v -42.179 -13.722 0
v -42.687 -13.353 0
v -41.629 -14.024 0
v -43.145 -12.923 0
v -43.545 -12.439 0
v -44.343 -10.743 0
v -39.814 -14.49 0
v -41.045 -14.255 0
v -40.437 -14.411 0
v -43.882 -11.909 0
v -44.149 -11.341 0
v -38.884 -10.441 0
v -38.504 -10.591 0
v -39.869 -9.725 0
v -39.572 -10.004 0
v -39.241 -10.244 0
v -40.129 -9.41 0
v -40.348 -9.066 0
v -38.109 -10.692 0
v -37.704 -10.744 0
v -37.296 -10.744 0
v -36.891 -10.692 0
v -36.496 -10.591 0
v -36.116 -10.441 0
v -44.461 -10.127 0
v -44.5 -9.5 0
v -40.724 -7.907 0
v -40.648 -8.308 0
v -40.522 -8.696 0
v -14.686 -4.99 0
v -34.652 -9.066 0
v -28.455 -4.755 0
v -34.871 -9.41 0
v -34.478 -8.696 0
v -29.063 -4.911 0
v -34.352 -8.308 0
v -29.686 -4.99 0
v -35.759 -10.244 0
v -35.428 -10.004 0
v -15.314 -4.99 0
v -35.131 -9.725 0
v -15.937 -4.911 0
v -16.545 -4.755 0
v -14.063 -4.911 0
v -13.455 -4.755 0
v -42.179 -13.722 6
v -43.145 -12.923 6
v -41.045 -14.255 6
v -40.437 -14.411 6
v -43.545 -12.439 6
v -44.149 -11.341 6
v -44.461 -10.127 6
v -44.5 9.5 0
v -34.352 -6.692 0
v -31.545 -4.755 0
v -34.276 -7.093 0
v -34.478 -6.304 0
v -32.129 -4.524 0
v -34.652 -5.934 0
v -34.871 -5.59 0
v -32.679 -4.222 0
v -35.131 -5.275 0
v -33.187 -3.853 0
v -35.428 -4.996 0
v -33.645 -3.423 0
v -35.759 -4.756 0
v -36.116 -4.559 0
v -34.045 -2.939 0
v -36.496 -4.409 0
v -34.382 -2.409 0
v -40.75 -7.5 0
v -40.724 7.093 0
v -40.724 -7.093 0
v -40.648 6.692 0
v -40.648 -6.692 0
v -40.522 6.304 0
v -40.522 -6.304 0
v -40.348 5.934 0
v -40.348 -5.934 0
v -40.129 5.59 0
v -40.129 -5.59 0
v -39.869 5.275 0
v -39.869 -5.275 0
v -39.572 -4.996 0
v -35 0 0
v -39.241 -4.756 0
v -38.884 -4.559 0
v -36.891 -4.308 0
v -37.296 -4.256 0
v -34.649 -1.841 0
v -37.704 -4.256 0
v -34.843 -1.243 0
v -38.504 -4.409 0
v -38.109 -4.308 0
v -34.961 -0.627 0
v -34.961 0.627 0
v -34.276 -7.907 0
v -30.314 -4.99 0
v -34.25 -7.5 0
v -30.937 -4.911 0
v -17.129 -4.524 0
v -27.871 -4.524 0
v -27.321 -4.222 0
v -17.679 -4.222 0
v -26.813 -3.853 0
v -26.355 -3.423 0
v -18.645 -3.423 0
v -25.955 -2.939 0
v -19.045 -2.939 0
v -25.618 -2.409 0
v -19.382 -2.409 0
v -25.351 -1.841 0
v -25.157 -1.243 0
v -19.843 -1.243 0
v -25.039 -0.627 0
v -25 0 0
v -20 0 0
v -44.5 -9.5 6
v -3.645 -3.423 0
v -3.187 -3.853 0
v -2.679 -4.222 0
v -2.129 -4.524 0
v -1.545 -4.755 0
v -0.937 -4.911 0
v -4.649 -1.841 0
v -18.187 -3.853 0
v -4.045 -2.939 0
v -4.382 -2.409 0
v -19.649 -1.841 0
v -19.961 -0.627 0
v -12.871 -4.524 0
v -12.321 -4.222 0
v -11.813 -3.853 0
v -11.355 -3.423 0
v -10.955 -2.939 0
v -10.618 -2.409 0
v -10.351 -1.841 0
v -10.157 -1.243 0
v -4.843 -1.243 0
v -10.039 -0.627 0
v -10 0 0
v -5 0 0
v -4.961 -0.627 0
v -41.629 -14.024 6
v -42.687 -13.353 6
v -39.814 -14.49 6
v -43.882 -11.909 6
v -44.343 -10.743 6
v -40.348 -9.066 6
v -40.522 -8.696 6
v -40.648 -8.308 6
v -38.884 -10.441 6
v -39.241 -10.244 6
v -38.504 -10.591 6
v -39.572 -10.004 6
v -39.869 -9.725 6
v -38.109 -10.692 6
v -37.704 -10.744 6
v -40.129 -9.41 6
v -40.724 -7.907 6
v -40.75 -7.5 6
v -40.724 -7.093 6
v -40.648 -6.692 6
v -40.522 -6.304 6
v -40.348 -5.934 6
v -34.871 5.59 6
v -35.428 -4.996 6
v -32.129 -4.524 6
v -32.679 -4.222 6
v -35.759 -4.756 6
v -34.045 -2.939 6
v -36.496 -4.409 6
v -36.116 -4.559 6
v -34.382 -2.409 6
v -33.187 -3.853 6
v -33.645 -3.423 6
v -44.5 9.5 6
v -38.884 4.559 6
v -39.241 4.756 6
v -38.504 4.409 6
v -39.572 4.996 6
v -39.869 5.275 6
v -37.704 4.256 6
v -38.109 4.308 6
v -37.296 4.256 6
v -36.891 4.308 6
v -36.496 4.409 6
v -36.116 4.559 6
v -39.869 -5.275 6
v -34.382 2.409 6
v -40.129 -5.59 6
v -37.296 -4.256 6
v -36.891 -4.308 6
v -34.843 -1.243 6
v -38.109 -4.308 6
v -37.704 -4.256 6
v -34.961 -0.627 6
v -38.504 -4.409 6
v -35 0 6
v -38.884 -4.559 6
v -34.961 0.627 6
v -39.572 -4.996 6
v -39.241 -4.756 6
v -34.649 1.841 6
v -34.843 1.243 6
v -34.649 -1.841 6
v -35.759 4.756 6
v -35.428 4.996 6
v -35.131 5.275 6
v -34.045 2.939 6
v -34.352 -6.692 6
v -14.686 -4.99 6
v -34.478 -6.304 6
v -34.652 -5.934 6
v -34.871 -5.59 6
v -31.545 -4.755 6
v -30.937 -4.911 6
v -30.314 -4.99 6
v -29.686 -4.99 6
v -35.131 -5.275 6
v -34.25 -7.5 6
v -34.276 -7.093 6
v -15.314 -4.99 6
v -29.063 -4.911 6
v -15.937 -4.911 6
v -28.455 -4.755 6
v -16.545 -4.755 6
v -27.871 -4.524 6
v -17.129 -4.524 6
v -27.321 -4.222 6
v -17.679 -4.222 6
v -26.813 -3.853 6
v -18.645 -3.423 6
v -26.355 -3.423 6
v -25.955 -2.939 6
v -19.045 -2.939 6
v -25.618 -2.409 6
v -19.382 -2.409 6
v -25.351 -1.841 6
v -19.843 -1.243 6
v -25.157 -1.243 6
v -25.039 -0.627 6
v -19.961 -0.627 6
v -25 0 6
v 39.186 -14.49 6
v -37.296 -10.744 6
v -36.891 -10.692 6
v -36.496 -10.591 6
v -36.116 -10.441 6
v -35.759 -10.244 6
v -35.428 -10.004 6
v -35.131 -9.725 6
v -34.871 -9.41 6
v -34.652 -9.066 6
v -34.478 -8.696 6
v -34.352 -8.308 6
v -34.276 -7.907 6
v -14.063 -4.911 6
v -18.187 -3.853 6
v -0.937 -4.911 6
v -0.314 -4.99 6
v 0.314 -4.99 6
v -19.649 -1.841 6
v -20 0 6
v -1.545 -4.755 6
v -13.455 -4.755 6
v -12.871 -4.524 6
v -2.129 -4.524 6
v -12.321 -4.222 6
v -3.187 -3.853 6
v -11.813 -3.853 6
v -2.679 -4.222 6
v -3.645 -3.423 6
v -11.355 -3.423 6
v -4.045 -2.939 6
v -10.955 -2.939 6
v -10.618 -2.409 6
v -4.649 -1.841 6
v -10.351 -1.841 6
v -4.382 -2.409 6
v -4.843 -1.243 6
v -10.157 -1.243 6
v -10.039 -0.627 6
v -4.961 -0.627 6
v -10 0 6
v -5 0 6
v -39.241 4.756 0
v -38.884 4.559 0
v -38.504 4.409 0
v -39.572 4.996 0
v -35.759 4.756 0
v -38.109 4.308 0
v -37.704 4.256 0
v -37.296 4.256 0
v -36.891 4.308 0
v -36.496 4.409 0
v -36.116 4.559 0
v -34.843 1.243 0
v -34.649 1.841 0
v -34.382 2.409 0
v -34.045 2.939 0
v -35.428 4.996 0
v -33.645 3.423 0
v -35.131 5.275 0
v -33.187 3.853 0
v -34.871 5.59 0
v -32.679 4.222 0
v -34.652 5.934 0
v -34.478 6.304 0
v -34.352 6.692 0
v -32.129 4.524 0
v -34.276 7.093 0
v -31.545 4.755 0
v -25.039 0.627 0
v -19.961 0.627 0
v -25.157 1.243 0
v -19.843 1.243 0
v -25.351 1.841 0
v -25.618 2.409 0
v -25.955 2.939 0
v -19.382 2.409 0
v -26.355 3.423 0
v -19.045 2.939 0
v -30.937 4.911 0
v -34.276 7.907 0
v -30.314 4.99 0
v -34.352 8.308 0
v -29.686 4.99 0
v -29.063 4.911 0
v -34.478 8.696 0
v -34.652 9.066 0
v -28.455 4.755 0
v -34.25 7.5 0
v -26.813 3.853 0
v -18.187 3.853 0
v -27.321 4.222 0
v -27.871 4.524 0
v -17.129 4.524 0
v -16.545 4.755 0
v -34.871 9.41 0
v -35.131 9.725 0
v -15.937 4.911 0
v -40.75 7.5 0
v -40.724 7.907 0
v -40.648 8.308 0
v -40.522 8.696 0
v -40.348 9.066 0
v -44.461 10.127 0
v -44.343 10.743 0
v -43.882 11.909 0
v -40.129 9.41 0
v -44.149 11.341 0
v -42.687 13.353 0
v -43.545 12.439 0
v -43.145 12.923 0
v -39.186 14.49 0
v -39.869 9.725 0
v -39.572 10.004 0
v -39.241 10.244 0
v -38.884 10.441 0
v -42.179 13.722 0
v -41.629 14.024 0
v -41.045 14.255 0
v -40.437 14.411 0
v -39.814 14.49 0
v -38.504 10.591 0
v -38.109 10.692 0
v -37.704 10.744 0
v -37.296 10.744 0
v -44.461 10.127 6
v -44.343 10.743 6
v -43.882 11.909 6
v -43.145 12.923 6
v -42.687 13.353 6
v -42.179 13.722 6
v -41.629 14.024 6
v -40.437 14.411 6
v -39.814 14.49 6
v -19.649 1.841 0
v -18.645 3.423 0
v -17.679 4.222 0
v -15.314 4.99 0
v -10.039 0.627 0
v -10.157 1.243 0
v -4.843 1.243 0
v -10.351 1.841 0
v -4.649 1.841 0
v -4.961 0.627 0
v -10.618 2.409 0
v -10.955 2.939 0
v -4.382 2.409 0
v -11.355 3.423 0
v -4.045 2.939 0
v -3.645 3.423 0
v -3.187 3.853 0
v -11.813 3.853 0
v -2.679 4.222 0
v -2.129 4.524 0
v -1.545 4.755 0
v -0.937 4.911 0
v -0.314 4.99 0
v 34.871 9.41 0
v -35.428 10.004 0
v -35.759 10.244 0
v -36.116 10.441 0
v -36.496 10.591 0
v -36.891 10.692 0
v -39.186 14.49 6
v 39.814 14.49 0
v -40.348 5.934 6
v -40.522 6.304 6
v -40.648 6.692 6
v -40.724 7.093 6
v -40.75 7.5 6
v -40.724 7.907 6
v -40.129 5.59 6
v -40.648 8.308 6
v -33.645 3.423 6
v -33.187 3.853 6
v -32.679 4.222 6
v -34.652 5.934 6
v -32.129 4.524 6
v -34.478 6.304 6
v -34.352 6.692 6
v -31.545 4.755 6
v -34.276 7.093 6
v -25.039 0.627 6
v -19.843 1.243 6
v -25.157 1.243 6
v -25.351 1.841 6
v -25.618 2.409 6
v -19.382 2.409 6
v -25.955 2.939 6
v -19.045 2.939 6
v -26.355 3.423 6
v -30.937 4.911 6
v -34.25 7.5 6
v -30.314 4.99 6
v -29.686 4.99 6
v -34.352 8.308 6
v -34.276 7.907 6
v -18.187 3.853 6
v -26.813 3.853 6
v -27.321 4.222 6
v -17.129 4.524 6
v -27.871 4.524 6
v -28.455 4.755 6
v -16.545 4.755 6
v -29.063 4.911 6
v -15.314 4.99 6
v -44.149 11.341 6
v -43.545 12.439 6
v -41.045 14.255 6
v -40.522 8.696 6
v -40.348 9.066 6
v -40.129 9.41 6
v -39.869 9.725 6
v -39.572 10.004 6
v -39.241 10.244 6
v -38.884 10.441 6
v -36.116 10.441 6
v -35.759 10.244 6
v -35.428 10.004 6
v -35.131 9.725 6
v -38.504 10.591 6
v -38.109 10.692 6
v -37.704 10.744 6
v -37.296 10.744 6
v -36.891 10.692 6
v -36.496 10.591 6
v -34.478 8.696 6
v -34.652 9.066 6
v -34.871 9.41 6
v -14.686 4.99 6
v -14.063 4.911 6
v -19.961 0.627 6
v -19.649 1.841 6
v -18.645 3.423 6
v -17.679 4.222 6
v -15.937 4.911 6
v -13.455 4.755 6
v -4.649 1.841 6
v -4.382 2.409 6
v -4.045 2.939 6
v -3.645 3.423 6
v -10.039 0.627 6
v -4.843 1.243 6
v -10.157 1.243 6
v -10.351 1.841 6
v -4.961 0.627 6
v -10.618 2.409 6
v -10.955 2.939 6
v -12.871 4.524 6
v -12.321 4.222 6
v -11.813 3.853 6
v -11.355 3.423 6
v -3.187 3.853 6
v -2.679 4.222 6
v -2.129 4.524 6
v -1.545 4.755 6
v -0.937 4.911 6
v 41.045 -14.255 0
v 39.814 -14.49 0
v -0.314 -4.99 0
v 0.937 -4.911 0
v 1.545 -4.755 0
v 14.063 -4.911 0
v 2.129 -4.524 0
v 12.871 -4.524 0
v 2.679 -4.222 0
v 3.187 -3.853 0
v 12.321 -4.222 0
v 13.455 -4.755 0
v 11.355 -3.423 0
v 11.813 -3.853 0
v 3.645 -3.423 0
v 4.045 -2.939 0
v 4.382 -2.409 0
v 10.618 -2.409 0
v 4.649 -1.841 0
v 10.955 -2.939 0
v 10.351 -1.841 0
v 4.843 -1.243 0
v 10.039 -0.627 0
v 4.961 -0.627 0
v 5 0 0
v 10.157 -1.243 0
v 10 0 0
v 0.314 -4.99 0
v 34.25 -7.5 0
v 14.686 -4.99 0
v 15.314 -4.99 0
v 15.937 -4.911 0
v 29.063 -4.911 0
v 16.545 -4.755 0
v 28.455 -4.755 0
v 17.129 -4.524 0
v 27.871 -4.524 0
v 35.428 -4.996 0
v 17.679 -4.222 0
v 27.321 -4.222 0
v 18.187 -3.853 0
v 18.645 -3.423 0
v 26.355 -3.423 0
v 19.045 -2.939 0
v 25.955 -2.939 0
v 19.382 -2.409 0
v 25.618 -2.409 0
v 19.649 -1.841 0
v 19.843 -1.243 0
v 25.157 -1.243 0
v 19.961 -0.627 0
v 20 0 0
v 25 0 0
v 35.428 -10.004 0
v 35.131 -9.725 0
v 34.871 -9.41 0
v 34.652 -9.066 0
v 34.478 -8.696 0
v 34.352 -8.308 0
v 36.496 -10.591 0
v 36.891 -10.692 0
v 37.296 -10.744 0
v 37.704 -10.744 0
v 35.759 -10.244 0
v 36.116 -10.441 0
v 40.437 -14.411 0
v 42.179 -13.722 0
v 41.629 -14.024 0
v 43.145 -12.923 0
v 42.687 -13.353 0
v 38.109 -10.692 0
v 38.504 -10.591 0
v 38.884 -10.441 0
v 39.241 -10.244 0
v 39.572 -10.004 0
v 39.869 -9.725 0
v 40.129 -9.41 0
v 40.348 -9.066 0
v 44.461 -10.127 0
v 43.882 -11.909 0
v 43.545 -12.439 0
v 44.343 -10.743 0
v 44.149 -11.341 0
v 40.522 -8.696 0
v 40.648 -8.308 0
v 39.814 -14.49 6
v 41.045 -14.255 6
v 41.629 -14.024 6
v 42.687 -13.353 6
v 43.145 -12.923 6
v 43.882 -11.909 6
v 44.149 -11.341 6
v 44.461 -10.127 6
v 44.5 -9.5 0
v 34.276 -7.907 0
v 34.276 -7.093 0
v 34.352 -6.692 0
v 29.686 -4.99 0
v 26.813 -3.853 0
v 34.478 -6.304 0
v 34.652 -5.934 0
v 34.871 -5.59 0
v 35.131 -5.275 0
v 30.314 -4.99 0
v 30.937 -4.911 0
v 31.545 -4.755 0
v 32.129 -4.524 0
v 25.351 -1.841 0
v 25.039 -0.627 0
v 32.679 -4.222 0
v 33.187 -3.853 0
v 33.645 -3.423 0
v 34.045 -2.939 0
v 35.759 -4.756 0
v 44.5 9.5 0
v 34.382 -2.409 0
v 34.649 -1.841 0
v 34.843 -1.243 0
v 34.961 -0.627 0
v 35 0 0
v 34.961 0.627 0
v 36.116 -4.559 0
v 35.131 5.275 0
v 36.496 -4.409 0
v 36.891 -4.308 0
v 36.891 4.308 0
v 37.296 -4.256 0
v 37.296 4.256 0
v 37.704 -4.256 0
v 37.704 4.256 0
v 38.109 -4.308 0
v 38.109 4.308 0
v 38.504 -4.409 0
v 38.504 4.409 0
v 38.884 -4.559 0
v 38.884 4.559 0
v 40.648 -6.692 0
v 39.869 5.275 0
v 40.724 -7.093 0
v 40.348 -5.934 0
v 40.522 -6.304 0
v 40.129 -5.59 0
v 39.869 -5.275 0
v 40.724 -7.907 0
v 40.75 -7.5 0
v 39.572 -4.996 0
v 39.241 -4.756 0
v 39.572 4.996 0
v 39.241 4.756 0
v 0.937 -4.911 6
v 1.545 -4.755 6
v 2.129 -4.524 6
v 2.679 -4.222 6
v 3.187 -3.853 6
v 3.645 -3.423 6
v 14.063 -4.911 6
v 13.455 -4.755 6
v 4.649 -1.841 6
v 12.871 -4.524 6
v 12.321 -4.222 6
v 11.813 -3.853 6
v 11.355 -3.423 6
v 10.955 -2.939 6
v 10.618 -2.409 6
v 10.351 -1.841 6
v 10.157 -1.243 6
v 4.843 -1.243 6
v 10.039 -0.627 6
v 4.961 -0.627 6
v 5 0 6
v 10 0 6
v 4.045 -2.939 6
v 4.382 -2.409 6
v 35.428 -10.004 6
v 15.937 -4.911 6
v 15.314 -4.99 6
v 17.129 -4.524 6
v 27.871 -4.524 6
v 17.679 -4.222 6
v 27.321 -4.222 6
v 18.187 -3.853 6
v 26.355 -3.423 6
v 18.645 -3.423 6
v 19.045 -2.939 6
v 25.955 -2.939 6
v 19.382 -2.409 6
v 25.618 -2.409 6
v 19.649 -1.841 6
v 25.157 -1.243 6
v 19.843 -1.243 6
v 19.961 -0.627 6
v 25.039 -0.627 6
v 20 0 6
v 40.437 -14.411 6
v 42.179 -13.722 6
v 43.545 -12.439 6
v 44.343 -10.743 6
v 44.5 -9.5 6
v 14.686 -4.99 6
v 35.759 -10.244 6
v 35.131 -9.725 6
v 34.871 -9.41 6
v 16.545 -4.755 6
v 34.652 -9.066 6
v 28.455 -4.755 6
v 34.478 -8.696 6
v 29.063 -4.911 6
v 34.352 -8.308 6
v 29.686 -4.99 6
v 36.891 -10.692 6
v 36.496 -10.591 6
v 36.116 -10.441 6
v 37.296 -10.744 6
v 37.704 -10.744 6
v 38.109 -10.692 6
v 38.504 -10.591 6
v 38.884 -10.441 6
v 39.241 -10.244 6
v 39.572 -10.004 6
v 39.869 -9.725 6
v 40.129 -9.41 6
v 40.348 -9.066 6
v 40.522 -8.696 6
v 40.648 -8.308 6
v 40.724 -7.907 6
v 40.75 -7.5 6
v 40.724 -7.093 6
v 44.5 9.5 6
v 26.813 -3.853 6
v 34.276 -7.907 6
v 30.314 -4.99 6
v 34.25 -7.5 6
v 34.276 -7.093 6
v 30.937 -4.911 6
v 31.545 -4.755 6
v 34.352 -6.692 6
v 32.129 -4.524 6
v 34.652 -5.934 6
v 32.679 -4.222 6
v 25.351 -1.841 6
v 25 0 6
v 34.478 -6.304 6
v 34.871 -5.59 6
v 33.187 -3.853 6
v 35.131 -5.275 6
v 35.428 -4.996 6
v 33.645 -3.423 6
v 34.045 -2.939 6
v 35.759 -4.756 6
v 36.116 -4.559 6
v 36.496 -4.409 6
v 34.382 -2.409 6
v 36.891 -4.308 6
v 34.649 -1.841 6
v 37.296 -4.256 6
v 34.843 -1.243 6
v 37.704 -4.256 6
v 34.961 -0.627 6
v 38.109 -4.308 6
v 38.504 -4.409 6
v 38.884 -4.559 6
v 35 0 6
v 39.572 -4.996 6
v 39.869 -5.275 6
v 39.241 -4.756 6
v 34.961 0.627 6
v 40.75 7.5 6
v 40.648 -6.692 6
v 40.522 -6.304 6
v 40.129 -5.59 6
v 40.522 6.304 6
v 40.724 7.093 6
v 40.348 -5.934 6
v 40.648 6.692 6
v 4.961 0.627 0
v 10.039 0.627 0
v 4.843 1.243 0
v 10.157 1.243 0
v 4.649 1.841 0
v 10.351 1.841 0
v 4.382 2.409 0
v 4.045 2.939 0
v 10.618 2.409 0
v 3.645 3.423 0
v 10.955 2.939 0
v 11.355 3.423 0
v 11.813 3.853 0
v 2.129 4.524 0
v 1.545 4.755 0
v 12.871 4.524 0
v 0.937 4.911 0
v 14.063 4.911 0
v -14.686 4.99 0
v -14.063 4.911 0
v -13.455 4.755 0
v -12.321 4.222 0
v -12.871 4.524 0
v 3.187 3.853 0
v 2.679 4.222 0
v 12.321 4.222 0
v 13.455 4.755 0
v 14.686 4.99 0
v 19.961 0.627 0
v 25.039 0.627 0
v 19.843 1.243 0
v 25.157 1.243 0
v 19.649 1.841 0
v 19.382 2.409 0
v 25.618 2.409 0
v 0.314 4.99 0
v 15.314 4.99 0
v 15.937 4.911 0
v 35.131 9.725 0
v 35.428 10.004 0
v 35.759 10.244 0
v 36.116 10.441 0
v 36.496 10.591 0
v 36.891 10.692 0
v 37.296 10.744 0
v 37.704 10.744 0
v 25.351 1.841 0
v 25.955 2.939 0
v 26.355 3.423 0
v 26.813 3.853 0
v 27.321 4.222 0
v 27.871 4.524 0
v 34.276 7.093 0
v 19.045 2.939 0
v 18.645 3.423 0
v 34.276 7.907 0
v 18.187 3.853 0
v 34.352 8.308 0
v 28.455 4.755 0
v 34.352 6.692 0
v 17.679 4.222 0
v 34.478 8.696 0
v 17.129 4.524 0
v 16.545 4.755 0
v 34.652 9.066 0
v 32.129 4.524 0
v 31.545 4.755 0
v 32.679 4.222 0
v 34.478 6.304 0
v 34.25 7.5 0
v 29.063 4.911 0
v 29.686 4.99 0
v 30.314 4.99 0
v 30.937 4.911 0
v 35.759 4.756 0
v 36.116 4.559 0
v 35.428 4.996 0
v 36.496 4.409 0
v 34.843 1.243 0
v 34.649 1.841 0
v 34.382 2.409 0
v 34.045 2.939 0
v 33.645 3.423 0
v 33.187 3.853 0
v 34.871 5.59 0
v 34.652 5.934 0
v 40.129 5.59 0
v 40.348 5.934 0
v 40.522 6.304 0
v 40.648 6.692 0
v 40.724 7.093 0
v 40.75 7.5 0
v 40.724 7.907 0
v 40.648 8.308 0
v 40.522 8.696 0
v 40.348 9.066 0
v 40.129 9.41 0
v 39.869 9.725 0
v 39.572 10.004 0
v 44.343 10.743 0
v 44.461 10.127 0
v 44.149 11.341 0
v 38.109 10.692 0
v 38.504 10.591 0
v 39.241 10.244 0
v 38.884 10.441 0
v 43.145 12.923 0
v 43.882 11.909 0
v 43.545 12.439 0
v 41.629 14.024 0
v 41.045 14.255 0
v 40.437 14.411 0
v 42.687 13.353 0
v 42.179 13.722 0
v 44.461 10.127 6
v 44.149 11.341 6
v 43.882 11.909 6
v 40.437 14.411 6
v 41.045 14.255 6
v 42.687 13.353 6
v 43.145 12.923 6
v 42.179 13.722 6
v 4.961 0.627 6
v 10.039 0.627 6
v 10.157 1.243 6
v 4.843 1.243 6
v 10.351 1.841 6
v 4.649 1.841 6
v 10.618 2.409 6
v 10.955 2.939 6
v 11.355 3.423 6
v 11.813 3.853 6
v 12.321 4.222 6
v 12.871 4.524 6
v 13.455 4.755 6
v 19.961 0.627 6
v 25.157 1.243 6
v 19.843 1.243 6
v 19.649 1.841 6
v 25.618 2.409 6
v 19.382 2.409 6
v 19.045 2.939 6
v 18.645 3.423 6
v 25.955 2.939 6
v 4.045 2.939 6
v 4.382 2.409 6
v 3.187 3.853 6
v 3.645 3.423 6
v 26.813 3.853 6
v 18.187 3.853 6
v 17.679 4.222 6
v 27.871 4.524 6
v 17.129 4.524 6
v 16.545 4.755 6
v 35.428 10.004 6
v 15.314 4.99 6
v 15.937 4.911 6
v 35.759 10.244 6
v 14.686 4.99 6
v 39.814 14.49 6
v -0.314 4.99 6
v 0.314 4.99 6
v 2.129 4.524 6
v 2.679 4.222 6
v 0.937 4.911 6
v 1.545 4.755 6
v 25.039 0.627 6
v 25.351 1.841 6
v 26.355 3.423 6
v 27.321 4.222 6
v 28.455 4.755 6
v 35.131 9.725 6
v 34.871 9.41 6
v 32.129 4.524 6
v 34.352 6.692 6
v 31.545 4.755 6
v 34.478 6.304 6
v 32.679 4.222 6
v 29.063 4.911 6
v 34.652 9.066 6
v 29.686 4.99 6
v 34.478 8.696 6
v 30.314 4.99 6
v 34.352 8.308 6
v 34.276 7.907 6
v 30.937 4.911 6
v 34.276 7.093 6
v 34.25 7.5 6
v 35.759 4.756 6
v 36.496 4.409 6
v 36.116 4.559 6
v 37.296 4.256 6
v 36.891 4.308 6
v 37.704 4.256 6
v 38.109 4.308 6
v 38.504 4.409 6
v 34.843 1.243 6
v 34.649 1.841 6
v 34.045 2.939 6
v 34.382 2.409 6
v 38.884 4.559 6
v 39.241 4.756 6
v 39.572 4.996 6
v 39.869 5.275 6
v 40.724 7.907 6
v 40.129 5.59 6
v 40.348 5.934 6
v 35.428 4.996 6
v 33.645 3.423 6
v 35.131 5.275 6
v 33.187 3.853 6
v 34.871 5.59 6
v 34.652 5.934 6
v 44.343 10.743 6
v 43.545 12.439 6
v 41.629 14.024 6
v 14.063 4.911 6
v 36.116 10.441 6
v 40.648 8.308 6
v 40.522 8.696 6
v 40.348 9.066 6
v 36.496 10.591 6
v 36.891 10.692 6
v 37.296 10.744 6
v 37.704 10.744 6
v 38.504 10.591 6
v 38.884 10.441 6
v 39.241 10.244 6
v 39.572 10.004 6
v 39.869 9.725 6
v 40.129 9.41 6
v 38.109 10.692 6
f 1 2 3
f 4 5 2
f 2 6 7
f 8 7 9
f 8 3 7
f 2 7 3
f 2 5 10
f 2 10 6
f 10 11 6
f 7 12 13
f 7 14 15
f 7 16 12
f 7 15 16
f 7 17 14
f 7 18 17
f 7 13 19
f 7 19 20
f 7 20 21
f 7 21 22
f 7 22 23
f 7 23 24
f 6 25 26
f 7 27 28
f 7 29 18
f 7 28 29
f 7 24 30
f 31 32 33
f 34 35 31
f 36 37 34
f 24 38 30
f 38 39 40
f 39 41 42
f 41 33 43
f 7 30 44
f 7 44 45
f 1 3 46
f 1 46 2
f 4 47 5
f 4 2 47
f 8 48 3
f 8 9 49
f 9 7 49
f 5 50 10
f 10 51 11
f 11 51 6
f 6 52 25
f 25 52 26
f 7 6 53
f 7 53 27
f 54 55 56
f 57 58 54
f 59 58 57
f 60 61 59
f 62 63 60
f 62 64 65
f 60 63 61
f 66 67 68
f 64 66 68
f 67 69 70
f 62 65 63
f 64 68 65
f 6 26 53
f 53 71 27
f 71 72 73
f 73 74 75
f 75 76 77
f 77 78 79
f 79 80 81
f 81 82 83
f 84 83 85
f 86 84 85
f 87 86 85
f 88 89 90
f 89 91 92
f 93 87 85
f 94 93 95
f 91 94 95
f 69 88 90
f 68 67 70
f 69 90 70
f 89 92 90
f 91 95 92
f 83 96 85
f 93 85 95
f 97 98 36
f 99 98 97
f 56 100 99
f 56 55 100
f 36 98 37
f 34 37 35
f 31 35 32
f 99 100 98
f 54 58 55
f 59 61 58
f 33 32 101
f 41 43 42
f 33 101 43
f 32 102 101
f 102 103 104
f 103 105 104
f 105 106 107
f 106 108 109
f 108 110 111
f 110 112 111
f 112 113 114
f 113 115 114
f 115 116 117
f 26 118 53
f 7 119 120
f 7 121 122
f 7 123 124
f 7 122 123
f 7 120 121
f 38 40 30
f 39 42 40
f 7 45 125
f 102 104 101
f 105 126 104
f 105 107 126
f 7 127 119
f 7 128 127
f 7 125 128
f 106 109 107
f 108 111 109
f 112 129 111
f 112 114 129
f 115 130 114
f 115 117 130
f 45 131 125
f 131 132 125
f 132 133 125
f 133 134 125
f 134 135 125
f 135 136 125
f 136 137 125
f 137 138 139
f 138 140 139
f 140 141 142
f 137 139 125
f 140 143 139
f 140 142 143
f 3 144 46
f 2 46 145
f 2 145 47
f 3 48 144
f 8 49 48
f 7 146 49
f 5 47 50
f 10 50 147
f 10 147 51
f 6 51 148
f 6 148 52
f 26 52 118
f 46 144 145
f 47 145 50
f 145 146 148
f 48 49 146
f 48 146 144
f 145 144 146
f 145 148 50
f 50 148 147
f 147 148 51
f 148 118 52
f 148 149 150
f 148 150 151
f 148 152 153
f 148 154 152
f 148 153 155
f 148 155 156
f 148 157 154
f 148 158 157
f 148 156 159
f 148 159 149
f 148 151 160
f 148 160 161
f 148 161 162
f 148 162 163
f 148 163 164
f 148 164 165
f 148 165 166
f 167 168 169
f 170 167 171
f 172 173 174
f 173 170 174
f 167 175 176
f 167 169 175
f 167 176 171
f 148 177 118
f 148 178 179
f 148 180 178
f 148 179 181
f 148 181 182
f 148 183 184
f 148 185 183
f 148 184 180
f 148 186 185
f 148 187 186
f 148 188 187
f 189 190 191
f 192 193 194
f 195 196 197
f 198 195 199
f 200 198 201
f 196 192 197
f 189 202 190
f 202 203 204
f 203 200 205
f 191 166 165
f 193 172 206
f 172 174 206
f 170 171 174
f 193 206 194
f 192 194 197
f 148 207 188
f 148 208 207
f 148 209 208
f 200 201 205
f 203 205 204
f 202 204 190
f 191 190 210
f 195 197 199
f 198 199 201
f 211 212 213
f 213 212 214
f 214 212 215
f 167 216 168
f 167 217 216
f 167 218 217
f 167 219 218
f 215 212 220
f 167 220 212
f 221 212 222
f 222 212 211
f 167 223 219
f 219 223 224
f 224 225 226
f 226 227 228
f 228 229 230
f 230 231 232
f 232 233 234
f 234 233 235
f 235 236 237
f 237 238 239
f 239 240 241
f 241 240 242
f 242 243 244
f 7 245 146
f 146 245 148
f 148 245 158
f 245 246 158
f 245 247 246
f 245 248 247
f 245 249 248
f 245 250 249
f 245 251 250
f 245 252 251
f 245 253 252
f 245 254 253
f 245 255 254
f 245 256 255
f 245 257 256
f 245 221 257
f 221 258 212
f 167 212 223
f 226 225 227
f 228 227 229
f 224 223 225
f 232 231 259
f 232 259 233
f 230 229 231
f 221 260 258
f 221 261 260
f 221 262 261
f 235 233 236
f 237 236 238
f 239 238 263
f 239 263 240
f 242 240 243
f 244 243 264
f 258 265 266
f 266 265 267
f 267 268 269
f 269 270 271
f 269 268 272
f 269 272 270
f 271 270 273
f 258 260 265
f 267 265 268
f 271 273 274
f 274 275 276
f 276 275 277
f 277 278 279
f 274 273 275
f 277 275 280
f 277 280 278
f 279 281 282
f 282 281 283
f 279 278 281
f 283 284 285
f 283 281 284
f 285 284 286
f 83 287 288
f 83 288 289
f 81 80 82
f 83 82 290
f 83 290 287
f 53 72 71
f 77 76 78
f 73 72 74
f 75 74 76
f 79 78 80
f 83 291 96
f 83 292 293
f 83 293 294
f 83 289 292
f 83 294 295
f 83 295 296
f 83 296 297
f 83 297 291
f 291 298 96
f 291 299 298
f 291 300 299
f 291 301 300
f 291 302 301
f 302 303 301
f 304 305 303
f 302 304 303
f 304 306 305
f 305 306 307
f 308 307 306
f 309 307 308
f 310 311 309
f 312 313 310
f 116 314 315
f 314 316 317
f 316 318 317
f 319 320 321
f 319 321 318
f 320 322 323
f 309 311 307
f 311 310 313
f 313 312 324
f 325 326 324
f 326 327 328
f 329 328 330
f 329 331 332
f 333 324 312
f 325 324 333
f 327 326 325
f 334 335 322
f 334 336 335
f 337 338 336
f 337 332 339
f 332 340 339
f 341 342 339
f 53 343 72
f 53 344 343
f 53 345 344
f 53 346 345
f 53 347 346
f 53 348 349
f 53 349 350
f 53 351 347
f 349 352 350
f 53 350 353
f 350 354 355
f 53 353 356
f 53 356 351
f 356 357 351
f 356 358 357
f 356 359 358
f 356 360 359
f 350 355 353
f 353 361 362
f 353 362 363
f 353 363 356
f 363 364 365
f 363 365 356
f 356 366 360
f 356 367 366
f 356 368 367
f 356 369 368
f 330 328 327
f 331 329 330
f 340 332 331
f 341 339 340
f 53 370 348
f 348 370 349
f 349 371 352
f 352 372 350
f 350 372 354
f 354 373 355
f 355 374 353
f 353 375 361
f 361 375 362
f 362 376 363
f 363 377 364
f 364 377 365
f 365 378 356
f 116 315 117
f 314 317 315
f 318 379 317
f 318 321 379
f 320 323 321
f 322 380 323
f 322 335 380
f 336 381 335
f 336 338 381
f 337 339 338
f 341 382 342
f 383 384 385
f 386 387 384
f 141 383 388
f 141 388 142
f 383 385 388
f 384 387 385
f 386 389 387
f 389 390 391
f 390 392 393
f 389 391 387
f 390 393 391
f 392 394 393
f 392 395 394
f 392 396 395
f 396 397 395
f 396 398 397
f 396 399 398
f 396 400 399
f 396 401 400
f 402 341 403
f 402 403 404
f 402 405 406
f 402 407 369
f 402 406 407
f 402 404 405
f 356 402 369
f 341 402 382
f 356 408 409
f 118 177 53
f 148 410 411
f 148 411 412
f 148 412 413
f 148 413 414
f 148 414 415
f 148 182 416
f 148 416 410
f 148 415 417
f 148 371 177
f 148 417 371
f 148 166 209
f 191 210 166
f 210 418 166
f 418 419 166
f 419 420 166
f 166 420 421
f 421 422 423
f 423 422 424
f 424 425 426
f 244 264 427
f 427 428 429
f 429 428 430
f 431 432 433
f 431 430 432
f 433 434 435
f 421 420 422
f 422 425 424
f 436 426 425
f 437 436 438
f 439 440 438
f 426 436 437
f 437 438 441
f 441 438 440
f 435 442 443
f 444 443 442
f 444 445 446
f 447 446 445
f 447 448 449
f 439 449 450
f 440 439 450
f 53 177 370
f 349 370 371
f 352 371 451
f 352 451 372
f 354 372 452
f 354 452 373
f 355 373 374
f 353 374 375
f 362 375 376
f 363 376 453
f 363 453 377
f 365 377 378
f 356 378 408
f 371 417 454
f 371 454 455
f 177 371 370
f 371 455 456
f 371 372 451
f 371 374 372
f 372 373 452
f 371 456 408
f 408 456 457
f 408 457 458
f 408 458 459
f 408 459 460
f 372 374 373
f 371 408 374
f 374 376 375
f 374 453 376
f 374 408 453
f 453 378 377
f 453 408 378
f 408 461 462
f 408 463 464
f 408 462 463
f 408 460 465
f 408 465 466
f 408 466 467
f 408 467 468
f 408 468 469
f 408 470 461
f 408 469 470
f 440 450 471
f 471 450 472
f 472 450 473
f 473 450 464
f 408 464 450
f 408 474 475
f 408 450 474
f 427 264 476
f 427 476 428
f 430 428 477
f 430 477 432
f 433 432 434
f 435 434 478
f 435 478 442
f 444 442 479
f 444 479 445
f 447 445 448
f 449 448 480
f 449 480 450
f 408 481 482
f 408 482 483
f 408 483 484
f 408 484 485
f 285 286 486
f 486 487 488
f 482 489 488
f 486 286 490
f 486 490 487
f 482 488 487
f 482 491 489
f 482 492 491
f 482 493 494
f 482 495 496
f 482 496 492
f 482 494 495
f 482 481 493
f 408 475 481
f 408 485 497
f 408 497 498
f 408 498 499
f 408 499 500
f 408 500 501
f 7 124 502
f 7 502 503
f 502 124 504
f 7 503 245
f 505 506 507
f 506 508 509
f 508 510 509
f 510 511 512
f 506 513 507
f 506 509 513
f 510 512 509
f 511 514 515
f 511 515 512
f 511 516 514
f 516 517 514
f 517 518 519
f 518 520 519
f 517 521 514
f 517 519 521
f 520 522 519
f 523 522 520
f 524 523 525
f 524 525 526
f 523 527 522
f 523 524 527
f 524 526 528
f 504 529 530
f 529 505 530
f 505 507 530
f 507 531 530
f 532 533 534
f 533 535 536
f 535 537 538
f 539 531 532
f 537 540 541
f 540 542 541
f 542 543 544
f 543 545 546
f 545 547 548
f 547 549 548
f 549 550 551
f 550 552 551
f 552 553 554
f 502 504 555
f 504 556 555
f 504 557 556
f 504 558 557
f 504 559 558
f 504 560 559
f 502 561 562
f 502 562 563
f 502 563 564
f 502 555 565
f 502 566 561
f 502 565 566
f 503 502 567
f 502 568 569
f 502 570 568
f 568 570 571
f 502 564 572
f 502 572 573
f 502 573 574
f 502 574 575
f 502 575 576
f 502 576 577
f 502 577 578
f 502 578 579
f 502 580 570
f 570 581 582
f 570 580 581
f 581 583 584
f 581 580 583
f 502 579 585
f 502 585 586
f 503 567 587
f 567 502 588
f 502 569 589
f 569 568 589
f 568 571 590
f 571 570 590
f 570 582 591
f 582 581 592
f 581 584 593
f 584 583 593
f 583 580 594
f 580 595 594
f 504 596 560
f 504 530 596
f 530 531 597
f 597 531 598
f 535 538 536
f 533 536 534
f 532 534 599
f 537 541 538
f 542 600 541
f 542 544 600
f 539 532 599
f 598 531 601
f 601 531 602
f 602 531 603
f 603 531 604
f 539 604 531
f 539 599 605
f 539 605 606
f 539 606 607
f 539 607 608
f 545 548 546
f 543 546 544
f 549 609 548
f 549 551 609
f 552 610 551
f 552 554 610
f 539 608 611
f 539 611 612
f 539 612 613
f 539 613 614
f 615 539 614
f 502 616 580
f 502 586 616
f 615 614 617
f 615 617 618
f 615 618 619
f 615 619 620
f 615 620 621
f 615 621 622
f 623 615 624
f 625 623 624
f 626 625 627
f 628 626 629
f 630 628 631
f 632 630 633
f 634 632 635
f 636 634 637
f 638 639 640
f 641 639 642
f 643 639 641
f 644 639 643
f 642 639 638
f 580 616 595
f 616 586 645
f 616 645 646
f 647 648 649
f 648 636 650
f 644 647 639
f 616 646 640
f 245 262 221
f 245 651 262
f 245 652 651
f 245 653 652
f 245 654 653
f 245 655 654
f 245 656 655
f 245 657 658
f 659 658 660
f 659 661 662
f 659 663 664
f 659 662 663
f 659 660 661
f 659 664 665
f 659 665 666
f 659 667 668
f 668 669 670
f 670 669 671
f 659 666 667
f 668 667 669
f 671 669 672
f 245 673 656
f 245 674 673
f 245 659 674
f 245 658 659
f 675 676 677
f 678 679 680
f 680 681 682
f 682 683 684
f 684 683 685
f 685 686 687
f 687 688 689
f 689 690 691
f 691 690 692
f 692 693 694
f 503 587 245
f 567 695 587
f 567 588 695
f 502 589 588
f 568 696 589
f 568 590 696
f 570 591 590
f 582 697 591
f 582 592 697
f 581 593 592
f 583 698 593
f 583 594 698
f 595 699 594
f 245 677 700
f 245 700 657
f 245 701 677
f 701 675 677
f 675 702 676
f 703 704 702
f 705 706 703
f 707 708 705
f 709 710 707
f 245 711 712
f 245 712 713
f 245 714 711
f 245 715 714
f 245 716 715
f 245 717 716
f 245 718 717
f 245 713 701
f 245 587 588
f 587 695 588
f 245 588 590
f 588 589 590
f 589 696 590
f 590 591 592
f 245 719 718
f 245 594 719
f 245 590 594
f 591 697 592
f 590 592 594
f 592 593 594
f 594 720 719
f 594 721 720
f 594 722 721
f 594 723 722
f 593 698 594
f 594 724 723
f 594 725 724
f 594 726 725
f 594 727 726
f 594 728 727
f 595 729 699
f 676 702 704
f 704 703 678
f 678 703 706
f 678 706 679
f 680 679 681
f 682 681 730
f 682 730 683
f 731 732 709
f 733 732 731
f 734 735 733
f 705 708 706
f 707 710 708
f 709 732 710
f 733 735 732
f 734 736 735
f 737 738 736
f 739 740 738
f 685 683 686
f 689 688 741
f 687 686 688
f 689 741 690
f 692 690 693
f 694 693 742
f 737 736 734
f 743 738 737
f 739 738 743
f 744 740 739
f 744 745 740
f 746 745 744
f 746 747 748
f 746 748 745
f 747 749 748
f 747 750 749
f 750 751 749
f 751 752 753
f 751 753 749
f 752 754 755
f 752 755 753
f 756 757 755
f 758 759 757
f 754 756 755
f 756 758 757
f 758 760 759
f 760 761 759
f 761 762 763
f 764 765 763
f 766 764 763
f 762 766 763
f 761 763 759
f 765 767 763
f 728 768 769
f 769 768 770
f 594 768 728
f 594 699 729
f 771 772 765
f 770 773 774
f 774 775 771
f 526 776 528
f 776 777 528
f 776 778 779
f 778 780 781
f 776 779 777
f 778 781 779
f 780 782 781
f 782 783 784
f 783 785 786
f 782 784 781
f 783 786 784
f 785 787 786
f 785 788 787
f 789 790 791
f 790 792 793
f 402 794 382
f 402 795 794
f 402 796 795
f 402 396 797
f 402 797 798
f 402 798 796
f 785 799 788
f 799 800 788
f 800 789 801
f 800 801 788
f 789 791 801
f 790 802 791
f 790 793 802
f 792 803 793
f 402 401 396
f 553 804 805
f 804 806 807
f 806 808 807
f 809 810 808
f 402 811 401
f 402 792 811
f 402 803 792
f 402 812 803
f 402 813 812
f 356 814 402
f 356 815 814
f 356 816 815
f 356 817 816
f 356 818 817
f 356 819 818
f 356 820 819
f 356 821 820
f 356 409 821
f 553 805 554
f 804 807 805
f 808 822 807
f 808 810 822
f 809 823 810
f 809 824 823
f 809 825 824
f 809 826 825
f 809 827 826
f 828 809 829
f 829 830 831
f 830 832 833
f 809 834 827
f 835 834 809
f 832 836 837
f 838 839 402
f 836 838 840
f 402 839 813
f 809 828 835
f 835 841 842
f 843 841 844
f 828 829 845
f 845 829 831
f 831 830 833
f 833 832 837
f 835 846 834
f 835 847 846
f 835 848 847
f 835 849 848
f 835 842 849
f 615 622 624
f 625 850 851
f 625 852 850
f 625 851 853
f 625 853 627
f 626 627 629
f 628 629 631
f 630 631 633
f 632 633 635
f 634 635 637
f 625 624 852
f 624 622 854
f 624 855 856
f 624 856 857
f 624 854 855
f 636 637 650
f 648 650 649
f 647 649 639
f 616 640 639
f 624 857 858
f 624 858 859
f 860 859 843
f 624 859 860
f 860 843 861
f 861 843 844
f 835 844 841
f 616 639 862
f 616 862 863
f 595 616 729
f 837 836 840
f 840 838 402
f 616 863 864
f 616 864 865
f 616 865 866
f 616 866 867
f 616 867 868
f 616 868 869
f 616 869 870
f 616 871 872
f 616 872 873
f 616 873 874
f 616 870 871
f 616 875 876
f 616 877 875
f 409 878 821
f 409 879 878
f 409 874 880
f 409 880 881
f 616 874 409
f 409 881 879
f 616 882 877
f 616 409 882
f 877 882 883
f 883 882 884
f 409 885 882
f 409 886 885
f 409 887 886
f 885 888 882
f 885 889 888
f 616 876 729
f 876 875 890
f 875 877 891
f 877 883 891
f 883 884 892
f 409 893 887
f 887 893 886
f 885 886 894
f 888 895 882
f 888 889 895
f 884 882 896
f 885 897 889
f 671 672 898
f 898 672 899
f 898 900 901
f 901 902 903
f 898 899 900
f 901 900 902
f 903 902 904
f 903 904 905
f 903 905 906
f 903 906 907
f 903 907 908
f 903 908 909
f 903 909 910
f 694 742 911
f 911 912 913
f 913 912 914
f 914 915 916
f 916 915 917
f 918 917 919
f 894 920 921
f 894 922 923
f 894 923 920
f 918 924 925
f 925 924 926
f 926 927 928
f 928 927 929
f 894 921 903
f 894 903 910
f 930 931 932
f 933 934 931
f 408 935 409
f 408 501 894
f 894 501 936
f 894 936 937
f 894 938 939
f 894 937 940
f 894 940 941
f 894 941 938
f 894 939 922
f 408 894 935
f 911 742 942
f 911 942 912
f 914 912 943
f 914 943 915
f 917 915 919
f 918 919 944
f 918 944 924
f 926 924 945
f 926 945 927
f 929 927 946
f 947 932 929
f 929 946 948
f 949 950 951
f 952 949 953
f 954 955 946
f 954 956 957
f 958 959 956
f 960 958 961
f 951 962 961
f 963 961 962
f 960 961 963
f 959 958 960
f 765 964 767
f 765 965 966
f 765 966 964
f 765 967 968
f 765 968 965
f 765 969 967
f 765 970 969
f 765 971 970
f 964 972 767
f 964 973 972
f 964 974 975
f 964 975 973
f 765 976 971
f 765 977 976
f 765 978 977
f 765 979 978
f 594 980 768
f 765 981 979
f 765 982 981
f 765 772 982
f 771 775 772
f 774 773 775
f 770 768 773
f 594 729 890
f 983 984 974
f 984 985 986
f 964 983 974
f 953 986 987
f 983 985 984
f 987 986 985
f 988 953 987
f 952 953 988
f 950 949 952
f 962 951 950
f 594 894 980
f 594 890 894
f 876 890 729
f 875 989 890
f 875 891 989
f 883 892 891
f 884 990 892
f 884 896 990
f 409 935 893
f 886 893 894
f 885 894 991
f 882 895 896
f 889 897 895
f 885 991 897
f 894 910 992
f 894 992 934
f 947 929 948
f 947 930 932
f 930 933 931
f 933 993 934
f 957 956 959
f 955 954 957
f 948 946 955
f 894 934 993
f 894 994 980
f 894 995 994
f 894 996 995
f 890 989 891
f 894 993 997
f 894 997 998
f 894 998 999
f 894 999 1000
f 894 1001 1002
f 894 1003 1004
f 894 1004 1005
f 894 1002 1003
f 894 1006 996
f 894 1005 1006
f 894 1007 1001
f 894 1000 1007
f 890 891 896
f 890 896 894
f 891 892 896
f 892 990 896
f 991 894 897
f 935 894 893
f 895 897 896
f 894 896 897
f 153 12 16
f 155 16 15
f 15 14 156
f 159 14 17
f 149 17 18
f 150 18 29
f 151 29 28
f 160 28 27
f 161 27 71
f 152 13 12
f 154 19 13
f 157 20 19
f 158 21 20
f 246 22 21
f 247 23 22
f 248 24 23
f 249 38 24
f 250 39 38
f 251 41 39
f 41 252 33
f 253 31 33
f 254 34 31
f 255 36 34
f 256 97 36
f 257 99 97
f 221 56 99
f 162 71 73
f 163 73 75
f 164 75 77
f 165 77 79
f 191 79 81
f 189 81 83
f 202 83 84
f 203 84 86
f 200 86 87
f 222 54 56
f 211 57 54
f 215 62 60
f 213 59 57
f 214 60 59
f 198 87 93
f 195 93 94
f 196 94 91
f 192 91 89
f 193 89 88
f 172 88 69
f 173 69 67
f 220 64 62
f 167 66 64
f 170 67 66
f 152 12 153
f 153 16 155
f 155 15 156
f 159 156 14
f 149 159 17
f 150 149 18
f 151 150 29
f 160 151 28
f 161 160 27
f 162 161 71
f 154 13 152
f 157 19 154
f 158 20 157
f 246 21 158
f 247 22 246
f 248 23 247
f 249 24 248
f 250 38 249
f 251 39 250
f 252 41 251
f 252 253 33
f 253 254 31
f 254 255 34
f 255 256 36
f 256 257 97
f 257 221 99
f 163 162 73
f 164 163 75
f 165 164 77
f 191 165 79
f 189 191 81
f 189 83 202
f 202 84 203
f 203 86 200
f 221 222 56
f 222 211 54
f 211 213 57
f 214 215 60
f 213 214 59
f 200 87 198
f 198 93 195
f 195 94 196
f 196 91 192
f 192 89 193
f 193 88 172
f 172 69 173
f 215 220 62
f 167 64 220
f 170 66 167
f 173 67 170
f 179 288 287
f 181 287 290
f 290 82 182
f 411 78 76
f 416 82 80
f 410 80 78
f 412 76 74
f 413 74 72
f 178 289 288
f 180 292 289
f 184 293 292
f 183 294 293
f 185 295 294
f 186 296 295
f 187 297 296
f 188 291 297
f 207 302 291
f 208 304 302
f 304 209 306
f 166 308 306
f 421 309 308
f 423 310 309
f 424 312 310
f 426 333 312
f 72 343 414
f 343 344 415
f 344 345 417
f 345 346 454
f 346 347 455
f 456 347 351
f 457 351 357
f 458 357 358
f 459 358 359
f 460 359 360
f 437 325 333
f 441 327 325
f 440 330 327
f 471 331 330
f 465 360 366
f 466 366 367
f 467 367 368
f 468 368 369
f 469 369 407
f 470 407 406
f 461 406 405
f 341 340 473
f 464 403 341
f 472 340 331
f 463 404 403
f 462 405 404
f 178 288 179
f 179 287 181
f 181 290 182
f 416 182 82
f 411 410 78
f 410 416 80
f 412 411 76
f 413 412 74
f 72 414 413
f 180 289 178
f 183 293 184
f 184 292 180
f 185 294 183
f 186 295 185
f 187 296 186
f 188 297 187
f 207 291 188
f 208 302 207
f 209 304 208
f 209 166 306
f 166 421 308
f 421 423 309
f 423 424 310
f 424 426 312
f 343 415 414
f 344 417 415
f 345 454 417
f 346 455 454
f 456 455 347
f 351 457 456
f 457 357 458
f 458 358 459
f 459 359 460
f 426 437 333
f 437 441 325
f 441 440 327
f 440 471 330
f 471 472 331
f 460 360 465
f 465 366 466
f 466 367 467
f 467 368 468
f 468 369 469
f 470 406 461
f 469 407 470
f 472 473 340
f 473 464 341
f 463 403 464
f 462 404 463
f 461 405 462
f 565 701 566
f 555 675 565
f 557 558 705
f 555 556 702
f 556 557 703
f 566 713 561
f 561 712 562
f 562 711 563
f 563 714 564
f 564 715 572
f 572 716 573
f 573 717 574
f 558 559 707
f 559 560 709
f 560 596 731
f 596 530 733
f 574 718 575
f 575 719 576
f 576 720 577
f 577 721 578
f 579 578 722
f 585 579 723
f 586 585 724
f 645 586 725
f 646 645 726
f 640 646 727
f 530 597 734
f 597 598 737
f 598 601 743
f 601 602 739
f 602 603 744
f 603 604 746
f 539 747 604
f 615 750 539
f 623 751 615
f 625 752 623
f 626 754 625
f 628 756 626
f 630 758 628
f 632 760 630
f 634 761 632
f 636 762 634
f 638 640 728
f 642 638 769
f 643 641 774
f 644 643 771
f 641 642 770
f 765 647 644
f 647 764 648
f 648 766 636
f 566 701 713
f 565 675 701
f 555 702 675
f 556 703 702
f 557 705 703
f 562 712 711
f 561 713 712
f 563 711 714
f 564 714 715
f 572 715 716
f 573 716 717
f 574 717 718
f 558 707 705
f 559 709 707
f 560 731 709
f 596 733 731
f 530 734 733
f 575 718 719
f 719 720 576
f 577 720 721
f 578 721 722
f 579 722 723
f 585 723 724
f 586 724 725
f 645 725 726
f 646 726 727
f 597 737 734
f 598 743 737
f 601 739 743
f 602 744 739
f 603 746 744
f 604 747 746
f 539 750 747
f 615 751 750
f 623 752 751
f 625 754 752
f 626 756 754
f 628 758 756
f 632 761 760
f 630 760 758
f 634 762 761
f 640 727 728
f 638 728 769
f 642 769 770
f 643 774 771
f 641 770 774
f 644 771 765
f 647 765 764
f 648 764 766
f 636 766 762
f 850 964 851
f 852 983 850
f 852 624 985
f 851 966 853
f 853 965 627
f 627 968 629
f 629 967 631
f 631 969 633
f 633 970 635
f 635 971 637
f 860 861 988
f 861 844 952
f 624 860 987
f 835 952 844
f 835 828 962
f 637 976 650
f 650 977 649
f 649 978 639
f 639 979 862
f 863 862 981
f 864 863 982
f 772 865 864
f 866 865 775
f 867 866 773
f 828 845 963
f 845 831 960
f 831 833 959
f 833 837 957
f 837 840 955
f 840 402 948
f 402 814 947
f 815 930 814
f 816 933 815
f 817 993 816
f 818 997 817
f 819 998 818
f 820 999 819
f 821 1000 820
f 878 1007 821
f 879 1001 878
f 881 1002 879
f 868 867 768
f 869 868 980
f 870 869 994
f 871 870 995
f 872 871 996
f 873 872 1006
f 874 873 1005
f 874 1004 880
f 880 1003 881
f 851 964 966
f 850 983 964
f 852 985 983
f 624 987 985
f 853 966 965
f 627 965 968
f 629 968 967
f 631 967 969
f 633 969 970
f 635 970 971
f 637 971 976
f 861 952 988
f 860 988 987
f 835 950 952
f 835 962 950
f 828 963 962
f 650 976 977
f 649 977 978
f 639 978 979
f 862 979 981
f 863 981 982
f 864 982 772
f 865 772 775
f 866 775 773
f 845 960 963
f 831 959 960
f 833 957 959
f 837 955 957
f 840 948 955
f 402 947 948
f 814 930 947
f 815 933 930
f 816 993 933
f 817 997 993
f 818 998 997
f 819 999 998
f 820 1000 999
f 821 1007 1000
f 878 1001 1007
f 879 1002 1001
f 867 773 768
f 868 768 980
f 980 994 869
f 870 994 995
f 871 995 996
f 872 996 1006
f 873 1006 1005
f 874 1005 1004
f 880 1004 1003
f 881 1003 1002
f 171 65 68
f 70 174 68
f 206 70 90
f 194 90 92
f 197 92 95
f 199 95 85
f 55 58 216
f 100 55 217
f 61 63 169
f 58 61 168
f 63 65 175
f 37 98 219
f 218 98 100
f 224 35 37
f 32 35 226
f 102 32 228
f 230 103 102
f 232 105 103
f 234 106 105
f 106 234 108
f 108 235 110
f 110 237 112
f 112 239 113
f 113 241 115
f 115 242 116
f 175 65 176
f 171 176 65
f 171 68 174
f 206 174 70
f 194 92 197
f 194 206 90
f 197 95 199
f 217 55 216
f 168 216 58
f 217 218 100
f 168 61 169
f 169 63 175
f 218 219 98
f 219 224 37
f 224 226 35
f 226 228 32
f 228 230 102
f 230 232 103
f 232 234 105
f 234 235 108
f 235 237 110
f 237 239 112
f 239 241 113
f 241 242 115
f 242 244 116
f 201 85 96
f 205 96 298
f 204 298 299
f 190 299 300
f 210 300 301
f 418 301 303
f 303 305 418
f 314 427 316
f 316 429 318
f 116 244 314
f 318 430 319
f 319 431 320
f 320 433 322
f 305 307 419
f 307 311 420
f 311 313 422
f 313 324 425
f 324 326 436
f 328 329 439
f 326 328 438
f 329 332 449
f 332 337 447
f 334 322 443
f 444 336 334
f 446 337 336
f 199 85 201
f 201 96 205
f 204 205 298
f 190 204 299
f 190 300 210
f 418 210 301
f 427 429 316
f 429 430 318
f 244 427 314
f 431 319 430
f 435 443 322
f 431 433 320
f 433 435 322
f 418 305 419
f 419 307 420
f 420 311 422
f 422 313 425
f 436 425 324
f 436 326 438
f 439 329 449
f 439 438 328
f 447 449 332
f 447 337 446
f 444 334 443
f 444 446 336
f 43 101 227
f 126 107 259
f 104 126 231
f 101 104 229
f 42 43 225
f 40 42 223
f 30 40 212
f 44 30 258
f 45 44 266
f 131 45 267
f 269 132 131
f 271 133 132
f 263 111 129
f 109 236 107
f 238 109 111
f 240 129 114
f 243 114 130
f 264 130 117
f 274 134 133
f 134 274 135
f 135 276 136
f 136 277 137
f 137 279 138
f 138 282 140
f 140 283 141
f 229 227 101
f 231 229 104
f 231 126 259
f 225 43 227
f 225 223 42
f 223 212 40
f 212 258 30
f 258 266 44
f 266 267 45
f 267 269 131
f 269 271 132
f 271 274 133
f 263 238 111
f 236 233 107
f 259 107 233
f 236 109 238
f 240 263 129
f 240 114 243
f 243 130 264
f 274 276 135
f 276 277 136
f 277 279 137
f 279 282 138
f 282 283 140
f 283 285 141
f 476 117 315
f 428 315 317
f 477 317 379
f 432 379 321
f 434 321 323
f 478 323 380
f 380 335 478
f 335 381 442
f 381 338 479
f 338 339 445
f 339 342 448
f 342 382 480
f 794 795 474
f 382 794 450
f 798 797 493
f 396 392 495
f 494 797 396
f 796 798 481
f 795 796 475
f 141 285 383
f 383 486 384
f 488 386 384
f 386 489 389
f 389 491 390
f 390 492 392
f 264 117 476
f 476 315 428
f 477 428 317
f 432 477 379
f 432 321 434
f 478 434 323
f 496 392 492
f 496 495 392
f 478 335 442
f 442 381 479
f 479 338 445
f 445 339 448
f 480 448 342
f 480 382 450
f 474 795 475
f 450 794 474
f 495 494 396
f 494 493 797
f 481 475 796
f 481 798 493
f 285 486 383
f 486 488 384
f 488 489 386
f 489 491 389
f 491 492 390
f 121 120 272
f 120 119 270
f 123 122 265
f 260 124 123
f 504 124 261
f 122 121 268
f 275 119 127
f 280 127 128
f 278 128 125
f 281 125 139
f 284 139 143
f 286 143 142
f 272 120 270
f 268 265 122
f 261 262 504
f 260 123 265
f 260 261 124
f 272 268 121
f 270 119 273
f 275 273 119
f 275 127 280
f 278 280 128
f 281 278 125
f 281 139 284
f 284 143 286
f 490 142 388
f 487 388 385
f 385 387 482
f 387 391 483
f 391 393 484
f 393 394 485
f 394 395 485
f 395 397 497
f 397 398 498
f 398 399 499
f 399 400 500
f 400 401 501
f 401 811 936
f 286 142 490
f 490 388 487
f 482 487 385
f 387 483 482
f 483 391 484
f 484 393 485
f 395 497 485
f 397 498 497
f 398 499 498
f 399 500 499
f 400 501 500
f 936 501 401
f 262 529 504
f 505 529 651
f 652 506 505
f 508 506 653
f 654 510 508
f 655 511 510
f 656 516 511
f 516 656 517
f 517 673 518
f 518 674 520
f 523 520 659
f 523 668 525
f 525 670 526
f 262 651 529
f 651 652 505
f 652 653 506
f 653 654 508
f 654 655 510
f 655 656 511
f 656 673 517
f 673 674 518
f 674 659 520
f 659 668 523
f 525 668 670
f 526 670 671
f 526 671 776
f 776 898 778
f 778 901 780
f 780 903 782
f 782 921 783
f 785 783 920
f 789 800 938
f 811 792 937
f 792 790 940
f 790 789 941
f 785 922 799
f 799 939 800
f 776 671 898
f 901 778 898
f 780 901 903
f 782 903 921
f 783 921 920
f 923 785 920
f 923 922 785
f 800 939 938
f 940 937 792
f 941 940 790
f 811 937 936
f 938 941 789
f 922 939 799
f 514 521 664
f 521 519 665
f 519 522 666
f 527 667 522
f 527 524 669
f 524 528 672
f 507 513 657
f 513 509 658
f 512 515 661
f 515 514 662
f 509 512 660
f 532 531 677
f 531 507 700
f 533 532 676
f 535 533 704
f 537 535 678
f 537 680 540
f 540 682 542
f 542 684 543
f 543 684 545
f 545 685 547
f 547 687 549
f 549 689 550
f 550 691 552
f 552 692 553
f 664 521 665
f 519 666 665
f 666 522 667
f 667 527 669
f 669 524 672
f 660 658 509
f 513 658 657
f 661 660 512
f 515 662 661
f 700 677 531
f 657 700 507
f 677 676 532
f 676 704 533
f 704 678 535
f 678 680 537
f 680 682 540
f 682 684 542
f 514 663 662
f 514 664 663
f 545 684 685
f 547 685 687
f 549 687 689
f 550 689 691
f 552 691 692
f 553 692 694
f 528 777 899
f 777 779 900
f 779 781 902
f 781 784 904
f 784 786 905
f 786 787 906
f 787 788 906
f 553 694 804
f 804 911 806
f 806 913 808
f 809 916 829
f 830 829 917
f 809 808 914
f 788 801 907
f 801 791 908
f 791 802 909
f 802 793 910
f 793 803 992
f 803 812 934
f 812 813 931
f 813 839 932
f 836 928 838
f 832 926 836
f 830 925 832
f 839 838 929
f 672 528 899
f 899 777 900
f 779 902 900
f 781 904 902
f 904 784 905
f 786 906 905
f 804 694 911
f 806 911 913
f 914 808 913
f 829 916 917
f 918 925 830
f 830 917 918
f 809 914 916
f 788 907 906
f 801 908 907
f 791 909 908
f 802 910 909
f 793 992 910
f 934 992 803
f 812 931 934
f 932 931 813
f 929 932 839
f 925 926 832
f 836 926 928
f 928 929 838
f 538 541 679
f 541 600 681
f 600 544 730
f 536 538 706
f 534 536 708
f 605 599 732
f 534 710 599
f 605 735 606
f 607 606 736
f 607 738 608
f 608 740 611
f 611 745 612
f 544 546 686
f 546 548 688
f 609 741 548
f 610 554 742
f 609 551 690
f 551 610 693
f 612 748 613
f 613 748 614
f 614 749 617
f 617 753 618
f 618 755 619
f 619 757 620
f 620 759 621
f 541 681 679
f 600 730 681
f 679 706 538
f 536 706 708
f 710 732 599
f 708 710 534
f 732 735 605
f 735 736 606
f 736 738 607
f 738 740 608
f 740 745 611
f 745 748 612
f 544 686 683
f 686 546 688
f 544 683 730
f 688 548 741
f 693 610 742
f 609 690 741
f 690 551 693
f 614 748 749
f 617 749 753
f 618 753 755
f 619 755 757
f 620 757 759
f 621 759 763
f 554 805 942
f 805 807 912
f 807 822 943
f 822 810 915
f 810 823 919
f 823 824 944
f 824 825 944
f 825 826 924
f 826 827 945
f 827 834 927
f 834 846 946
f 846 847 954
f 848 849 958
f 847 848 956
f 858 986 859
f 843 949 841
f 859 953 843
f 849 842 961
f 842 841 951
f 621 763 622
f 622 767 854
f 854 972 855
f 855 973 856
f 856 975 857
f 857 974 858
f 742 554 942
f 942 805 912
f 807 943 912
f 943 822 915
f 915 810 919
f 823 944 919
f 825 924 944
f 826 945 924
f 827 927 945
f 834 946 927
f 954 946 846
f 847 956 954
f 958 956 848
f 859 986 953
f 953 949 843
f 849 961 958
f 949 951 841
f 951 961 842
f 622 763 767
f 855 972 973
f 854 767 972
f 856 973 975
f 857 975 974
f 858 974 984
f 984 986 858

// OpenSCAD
$fn = 50;

difference() {
	union() {
		hull() {
			translate(v = [-39.5, 9.5, 0]) {
				cylinder(h = 6, r = 5);
			}
			translate(v = [39.5, 9.5, 0]) {
				cylinder(h = 6, r = 5);
			}
			translate(v = [-39.5, -9.5, 0]) {
				cylinder(h = 6, r = 5);
			}
			translate(v = [39.5, -9.5, 0]) {
				cylinder(h = 6, r = 5);
			}
		}
	}
	union() {
		translate(v = [-37.5, -7.5, -100.0]) {
			cylinder(h = 200, r = 3.25);
		}
		translate(v = [-37.5, 7.5, -100.0]) {
			cylinder(h = 200, r = 3.25);
		}
		translate(v = [37.5, -7.5, -100.0]) {
			cylinder(h = 200, r = 3.25);
		}
		translate(v = [37.5, 7.5, -100.0]) {
			cylinder(h = 200, r = 3.25);
		}
		translate(v = [-37.5, -7.5, -100.0]) {
			cylinder(h = 200, r = 1.8);
		}
		translate(v = [-37.5, 7.5, -100.0]) {
			cylinder(h = 200, r = 1.8);
		}
		translate(v = [37.5, -7.5, -100.0]) {
			cylinder(h = 200, r = 1.8);
		}
		translate(v = [37.5, 7.5, -100.0]) {
			cylinder(h = 200, r = 1.8);
		}
		translate(v = [-30.0, 0, 0.0]) {
			cylinder(h = 6, r = 5.0);
		}
		translate(v = [-15.0, 0, 0.0]) {
			cylinder(h = 6, r = 5.0);
		}
		cylinder(h = 6, r = 5.0);
		translate(v = [15.0, 0, 0.0]) {
			cylinder(h = 6, r = 5.0);
		}
		translate(v = [30.0, 0, 0.0]) {
			cylinder(h = 6, r = 5.0);
		}
	}
}
